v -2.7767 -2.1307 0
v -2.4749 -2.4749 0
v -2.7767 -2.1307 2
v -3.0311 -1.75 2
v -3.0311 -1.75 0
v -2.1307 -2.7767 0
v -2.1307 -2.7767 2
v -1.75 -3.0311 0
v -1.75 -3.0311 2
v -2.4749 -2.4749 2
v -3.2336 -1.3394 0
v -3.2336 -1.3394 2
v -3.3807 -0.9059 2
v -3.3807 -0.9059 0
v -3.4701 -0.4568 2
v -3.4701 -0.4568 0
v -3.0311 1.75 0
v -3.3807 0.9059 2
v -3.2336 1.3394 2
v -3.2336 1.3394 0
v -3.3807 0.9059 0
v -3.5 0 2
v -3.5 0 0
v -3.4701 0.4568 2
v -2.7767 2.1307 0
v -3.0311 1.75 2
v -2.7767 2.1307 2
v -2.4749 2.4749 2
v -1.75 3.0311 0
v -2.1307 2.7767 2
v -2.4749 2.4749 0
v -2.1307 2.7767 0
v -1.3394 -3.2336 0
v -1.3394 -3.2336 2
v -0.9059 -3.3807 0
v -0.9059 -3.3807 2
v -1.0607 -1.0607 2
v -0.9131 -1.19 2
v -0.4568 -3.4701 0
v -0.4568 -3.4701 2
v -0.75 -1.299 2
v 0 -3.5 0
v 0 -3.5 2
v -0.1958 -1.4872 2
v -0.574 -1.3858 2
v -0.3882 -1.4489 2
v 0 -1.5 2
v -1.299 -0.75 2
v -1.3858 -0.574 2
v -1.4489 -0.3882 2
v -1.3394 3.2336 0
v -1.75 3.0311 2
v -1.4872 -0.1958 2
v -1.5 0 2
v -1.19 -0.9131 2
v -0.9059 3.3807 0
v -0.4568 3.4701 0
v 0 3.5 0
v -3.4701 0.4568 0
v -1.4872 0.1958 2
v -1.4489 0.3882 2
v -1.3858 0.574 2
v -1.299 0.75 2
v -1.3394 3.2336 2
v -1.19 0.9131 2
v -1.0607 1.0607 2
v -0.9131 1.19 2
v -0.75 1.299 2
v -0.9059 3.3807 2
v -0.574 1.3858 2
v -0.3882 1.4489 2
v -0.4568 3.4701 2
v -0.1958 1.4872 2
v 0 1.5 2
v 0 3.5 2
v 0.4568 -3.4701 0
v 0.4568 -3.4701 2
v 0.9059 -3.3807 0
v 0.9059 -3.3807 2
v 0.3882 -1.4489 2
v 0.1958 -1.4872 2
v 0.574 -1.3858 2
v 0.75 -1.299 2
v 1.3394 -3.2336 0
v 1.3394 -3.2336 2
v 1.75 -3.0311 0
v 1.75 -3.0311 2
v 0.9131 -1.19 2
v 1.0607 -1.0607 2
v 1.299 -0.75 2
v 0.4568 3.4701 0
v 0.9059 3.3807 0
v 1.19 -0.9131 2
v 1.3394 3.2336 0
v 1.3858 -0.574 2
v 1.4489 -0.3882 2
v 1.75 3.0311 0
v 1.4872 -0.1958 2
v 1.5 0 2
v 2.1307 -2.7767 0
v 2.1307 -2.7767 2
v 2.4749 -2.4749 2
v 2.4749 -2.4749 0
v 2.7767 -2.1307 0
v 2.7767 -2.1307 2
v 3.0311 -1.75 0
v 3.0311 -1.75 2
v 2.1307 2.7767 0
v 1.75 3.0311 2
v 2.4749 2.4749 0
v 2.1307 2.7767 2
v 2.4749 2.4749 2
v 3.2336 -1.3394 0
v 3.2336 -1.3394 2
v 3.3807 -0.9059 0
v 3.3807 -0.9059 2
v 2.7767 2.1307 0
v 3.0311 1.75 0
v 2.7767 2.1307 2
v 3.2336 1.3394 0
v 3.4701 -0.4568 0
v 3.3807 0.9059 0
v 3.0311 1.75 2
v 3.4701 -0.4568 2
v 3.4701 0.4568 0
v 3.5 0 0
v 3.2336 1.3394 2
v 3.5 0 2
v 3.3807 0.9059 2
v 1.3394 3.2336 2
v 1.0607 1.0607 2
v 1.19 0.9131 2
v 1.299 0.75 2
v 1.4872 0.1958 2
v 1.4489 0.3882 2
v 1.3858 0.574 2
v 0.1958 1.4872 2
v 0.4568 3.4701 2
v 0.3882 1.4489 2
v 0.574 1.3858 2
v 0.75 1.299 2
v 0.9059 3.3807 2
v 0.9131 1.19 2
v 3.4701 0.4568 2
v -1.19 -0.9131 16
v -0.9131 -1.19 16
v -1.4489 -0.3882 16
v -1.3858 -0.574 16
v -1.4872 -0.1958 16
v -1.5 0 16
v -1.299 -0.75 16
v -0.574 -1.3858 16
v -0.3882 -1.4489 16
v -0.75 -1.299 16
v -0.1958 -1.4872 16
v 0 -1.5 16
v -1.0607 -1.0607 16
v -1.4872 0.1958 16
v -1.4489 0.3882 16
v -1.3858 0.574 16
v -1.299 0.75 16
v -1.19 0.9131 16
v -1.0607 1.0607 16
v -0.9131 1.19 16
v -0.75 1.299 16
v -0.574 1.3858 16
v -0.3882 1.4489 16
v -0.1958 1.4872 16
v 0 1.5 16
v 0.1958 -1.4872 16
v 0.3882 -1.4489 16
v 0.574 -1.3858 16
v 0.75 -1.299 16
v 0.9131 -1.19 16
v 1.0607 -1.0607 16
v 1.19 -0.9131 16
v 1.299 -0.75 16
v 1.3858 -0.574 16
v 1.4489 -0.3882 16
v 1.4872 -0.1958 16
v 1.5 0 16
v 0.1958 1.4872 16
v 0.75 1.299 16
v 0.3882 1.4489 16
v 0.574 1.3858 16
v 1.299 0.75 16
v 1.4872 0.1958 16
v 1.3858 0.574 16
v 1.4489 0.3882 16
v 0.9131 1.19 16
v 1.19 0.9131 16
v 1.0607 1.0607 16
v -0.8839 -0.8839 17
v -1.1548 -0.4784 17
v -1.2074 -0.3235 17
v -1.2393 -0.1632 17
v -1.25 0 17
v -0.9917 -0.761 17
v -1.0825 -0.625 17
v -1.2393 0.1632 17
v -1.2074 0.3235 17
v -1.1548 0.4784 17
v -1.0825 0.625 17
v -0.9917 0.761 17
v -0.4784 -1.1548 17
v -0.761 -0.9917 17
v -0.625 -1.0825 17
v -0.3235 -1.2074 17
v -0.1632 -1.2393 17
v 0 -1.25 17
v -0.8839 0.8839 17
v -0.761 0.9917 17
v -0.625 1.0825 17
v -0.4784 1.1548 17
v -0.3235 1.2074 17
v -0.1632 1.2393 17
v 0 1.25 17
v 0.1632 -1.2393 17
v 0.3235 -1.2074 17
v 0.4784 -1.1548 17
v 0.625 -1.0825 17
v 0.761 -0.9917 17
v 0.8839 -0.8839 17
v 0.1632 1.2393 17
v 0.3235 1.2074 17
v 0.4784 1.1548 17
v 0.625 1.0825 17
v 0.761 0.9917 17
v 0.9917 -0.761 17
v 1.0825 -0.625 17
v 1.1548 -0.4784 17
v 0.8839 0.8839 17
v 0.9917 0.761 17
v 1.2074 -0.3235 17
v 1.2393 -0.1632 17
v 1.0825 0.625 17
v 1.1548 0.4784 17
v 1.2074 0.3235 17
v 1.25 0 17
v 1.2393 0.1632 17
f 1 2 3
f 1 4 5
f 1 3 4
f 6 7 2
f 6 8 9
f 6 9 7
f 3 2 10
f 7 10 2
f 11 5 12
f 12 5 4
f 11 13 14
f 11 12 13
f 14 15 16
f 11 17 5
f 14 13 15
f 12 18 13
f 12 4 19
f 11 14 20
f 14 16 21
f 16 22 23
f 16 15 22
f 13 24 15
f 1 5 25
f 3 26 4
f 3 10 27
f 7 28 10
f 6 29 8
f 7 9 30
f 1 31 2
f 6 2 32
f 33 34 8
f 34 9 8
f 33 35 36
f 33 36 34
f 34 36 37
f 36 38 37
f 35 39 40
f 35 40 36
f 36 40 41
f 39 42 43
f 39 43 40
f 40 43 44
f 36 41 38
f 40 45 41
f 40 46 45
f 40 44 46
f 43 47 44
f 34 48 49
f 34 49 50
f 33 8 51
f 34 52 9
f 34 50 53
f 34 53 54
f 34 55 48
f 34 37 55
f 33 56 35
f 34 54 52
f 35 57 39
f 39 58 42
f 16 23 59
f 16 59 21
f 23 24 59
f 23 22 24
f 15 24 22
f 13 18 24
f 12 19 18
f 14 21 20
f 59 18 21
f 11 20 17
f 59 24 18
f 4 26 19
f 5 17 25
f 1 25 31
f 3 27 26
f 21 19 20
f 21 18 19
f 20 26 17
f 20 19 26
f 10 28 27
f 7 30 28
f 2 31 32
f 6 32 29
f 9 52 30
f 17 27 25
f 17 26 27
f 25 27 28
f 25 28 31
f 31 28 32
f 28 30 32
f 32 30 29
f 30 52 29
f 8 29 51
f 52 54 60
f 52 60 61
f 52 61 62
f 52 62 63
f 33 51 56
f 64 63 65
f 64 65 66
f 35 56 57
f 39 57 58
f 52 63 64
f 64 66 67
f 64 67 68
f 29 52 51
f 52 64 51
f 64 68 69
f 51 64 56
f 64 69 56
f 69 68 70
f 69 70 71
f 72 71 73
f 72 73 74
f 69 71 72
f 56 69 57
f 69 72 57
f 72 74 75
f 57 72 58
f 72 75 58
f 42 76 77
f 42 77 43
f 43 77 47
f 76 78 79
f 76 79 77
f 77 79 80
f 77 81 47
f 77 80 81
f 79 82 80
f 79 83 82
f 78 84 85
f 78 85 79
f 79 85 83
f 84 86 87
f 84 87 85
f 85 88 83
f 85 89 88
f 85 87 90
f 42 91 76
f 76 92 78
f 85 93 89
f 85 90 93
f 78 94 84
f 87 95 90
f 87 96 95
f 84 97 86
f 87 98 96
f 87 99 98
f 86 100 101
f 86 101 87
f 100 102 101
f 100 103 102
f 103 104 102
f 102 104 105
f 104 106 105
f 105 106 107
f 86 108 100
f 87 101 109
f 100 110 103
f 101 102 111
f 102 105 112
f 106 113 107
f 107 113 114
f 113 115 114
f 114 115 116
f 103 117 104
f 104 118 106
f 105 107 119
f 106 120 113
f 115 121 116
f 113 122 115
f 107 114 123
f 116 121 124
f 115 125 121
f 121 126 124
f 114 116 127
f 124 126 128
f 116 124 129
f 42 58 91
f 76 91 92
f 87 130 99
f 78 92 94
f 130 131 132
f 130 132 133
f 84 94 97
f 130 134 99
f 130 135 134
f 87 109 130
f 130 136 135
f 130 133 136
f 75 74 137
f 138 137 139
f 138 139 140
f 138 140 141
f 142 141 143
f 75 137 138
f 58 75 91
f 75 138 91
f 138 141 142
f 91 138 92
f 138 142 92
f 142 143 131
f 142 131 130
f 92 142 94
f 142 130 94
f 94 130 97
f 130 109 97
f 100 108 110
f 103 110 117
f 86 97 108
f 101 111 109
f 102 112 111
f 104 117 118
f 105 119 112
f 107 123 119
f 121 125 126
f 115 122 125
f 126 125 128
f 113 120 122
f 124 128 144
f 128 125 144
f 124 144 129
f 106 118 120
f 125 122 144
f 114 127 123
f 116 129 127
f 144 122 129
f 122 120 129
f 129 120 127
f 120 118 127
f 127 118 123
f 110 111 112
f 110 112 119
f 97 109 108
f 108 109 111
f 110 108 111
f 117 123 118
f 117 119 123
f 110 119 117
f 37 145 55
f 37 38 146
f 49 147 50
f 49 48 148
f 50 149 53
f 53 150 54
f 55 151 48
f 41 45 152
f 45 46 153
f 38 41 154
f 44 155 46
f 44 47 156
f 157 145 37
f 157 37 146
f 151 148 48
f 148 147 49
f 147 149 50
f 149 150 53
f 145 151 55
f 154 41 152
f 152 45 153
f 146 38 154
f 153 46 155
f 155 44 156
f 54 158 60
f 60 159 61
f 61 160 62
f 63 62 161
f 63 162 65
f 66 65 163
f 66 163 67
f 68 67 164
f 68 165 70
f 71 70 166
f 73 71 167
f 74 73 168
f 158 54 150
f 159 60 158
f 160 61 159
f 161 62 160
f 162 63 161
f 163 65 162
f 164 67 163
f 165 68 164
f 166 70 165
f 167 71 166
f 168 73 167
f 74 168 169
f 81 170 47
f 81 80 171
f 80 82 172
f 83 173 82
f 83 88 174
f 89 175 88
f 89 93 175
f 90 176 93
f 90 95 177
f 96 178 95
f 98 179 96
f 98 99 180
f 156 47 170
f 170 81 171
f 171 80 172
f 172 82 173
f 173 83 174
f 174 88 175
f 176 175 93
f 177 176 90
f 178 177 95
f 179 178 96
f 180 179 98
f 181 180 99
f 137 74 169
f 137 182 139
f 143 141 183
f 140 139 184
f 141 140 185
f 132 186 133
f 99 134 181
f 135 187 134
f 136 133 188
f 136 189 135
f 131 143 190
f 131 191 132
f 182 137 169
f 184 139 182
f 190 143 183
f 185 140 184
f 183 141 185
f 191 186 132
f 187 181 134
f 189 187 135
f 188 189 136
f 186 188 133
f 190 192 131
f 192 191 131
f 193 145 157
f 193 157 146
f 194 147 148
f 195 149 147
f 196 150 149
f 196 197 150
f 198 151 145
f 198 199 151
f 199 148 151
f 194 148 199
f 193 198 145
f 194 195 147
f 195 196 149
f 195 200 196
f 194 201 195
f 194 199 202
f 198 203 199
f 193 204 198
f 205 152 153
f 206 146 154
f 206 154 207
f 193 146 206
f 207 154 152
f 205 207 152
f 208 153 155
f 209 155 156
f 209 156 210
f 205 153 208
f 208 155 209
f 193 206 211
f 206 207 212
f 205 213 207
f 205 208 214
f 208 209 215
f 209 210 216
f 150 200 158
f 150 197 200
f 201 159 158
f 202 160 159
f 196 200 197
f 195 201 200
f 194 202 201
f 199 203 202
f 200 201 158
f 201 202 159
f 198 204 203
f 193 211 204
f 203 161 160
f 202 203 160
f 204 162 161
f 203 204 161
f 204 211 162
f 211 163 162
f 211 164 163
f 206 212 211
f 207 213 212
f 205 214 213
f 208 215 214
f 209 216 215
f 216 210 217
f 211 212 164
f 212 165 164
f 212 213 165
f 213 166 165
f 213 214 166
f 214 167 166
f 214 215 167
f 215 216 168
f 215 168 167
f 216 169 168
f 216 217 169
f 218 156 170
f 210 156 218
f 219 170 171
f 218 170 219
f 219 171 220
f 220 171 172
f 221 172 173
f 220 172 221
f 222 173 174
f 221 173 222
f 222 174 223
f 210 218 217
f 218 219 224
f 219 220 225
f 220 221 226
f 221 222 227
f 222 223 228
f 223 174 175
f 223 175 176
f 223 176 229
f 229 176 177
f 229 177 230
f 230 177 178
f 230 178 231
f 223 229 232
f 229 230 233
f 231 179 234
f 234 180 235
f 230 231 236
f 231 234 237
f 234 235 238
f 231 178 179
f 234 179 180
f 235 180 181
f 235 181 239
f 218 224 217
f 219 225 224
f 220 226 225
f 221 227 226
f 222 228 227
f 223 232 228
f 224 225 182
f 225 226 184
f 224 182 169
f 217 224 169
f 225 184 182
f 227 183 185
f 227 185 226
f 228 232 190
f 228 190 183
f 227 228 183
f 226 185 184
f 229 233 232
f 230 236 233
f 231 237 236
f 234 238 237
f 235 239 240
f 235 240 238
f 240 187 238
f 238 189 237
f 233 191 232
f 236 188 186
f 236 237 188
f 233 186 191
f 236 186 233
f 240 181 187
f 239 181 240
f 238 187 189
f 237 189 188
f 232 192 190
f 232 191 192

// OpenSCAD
// Temporary smooth gauge pin for the provisional 3.4 mm M3 pivot holes.
// This is NOT a working linkage pivot or a threaded M3 bolt.
// Print upright, head on bed; remove and insert gently by hand only.
$fn = 48;

pin_diameter = 3.0; // override with -D 'pin_diameter=2.8' for a looser gauge
pin_shaft_length = 14.0;
pin_head_diameter = 7.0;
pin_head_height = 2.0;
pin_tip_height = 1.0;
pin_tip_diameter = pin_diameter - 0.5;

assert(pin_diameter >= 2.5 && pin_diameter <= 3.2);
assert(pin_head_diameter > pin_diameter + 2);
assert(pin_tip_diameter > 0);

module pivot_fit_pin() {
    union() {
        cylinder(d = pin_head_diameter, h = pin_head_height);
        translate([0, 0, pin_head_height])
            cylinder(d = pin_diameter, h = pin_shaft_length);
        translate([0, 0, pin_head_height + pin_shaft_length])
            cylinder(d1 = pin_diameter, d2 = pin_tip_diameter,
                     h = pin_tip_height);
    }
}

pivot_fit_pin();
